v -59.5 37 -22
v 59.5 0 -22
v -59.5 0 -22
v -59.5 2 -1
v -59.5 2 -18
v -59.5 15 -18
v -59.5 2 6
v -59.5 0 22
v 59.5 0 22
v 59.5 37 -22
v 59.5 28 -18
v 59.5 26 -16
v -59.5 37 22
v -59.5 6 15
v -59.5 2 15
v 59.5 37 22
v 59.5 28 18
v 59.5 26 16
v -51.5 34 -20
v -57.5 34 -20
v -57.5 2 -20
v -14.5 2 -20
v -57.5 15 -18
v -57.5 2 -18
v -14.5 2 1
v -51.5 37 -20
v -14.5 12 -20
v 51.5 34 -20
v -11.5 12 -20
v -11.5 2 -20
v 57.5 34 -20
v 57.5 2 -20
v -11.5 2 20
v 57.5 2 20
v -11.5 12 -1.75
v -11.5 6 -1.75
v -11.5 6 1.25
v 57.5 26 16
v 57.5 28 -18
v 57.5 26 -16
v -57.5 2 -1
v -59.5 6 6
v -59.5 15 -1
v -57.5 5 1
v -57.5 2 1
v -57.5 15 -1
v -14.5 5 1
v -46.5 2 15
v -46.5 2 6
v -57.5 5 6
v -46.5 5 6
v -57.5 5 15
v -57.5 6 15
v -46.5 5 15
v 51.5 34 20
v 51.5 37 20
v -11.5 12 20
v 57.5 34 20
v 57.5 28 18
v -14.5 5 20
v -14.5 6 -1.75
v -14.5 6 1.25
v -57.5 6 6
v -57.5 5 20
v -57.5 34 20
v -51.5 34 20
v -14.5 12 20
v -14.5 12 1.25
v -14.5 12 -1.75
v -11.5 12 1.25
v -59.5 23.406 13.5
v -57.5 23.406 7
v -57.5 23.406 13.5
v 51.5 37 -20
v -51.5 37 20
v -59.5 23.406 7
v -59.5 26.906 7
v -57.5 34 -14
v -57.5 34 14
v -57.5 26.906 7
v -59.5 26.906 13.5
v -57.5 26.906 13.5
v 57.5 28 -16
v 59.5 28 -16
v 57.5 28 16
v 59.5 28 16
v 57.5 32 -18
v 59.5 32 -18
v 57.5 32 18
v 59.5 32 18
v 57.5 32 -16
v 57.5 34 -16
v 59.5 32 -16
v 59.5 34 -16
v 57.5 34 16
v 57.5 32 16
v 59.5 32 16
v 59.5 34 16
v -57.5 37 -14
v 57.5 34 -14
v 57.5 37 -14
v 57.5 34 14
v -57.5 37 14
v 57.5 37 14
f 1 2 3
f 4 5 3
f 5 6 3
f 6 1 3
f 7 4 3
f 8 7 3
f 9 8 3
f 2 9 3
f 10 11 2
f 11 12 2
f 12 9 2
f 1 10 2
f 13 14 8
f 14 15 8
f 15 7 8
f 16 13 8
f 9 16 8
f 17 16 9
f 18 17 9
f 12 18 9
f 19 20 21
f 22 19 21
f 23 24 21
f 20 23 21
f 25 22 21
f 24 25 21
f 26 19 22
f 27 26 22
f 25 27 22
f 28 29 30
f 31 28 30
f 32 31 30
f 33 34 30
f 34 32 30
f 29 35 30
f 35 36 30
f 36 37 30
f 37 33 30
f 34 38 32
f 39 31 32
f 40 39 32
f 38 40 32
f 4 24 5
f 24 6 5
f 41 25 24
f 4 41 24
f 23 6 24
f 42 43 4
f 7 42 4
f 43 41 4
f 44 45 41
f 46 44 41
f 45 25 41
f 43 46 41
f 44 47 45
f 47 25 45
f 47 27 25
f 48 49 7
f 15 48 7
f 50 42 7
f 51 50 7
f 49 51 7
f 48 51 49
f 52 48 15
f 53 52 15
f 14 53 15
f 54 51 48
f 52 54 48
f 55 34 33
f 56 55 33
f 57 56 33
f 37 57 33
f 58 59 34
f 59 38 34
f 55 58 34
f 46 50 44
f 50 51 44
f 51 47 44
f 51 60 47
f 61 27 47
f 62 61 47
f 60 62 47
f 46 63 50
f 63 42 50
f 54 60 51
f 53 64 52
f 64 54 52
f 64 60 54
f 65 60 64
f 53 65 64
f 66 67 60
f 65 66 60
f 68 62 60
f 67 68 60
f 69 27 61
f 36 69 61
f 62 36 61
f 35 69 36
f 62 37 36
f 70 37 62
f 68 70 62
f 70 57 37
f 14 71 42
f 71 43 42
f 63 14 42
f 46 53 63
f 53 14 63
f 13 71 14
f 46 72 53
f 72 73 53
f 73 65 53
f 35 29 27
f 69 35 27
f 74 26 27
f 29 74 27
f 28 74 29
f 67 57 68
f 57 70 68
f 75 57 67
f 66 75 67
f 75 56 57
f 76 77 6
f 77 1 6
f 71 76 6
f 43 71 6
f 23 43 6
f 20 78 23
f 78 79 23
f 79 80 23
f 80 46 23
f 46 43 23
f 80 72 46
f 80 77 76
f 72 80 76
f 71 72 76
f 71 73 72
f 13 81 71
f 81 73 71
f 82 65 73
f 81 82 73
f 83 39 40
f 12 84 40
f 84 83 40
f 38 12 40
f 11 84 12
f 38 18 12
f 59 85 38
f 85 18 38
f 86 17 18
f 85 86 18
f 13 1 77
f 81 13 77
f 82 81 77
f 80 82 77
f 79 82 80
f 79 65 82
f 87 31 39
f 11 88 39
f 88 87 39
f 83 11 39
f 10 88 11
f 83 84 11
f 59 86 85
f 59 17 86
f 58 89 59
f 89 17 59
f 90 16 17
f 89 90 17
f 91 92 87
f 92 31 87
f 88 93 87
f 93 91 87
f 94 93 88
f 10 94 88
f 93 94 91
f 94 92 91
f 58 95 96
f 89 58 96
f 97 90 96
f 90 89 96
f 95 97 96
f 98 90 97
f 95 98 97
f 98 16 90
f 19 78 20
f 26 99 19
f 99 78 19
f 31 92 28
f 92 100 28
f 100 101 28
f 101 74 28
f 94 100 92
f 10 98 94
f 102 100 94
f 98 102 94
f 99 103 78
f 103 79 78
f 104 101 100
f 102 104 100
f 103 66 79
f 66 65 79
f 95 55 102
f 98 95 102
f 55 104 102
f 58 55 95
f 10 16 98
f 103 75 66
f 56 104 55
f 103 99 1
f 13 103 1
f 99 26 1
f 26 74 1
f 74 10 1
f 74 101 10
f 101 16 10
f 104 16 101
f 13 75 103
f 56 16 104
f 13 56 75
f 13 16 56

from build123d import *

# Parameters (mm, degrees)
ESBO_O1_W                = 119
ESBO_O1_H                = 44
RESSALTO_EXTRUS_O2_DEPTH = 2
ESBO_O2_W                = 119
ESBO_O2_H                = 44
ESBO_O2_W_2              = 115
ESBO_O2_H_2              = 40
RESSALTO_EXTRUS_O3_DEPTH = 35
RESSALTO_EXTRUS_O5_DEPTH = 3
ESBO_O5_W                = 3
ESBO_O5_H                = 40
RESSALTO_EXTRUS_O6_DEPTH = 7
ESBO_O8_W                = 9
ESBO_O8_H                = 4
CORTE_EXTRUS_O1_DEPTH    = 7
ESBO_O9_W                = 17
ESBO_O9_H                = 13
CORTE_EXTRUS_O2_DEPTH    = 7
CORTE_EXTRUS_O5_DEPTH    = 7
RESSALTO_EXTRUS_O7_DEPTH = 3
ESPELHAR3_COPY_1_DEPTH   = 3
ESPELHAR3_COPY_2_DEPTH   = 3
ESBO_O12_W               = 3
ESBO_O12_H               = 3
CORTE_EXTRUS_O6_DEPTH    = 6
ESBO_O13_W               = 6.5
ESBO_O13_H               = 3.5
CORTE_EXTRUS_O7_DEPTH    = 10


with BuildPart() as part:
    # Esboço1 → Ressalto-extrusão2 (new body)
    with BuildSketch(Plane(origin=(0, 0, 0), x_dir=(1, 0, 0), z_dir=(0, 1, 0))):
        Rectangle(ESBO_O1_W, ESBO_O1_H)
    extrude(amount=RESSALTO_EXTRUS_O2_DEPTH)

    # Esboço2 → Ressalto-extrusão3 (add)
    with BuildSketch(Plane(origin=(0, 2, 0), x_dir=(1, 0, 0), z_dir=(0, 1, 0))):
        Rectangle(ESBO_O2_W, ESBO_O2_H)
        Rectangle(ESBO_O2_W_2, ESBO_O2_H_2, mode=Mode.SUBTRACT)
    extrude(amount=RESSALTO_EXTRUS_O3_DEPTH)

    # Esboço3 → Ressalto-extrusão5 (add)
    with BuildSketch(Plane(origin=(0, 2, 0), x_dir=(1, 0, 0), z_dir=(0, 1, 0))):
        Polygon((-57.5, -15), (-57.5, -20), (-14.5, -20), (-14.5, -1), (-57.5, -1), (-57.5, -6), (-46.5, -6), (-46.5, -15), align=None)
        Polygon((-14.5, -1), (-14.5, -20), (-11.5, -20), (-11.5, 20), (-14.5, 20), align=None)
    extrude(amount=RESSALTO_EXTRUS_O5_DEPTH)

    # Esboço5 → Ressalto-extrusão6 (add)
    with BuildSketch(Plane(origin=(0, 5, 0), x_dir=(1, 0, 0), z_dir=(0, 1, 0))):
        with Locations((-13, 0)):
            Rectangle(ESBO_O5_W, ESBO_O5_H)
    extrude(amount=RESSALTO_EXTRUS_O6_DEPTH)

    # Esboço8 → Corte-extrusão1 (cut)
    with BuildSketch(Plane(origin=(-57.5, 0, 0), x_dir=(0, 0, -1), z_dir=(1, 0, 0))):
        with Locations((-10.5, 4)):
            Rectangle(ESBO_O8_W, ESBO_O8_H)
    extrude(amount=-CORTE_EXTRUS_O1_DEPTH, mode=Mode.SUBTRACT)

    # Esboço9 → Corte-extrusão2 (cut)
    with BuildSketch(Plane(origin=(-57.5, 0, 0), x_dir=(0, 0, -1), z_dir=(1, 0, 0))):
        with Locations((9.5, 8.5)):
            Rectangle(ESBO_O9_W, ESBO_O9_H)
    extrude(amount=-CORTE_EXTRUS_O2_DEPTH, mode=Mode.SUBTRACT)

    # Esboço10 → Corte-extrusão5 (cut)
    with BuildSketch(Plane(origin=(59.5, 0, 0), x_dir=(0, 0, -1), z_dir=(1, 0, 0))):
        Polygon((-16, 26), (16, 26), (16, 28), (18, 28), (18, 32), (16, 32), (16, 34), (-16, 34), (-16, 32), (-18, 32), (-18, 28), (-16, 28), align=None)
    extrude(amount=-CORTE_EXTRUS_O5_DEPTH, mode=Mode.SUBTRACT)

    # Esboço11 → Ressalto-extrusão7 (add)
    with BuildSketch(Plane(origin=(0, 37, 0), x_dir=(1, 0, 0), z_dir=(0, 1, 0))):
        Polygon((-59.5, 22), (-59.5, 12), (-49.5, 22), align=None)
    ressalto_extrus_o7 = extrude(amount=-RESSALTO_EXTRUS_O7_DEPTH)

    # Espelhar1: Ressalto-extrusão7 across plane
    add(ressalto_extrus_o7.mirror(Plane.XY))

    # Espelhar2: Ressalto-extrusão7 across plane
    add(ressalto_extrus_o7.mirror(Plane(origin=(0, 0, 0), x_dir=(0, 0, 1), z_dir=(1, 0, 0))))

    # Espelhar3 copy 1 sketch → Espelhar3 copy 1 (add)
    with BuildSketch(Plane(origin=(0, 37, 0), x_dir=(-1, 0, 0), z_dir=(0, 1, 0))):
        Polygon((-59.5, 22), (-59.5, 12), (-49.5, 22), align=None)
    extrude(amount=-ESPELHAR3_COPY_1_DEPTH)

    # Espelhar3 copy 2 sketch → Espelhar3 copy 2 (add)
    with BuildSketch(Plane(origin=(0, 37, 0), x_dir=(-1, 0, 0), z_dir=(0, 1, 0))):
        Polygon((-59.5, -22), (-59.5, -12), (-49.5, -22), align=None)
    extrude(amount=-ESPELHAR3_COPY_2_DEPTH)

    # Esboço12 → Corte-extrusão6 (cut)
    with BuildSketch(Plane(origin=(0, 12, 0), x_dir=(1, 0, 0), z_dir=(0, 1, 0))):
        with Locations((-13, 0.25)):
            Rectangle(ESBO_O12_W, ESBO_O12_H)
    extrude(amount=-CORTE_EXTRUS_O6_DEPTH, mode=Mode.SUBTRACT)

    # Esboço13 → Corte-extrusão7 (cut)
    with BuildSketch(Plane.ZY.offset(59.5)):
        with Locations((10.25, 25.155612263)):
            Rectangle(ESBO_O13_W, ESBO_O13_H)
    extrude(amount=-CORTE_EXTRUS_O7_DEPTH, mode=Mode.SUBTRACT)


solid = part.part
